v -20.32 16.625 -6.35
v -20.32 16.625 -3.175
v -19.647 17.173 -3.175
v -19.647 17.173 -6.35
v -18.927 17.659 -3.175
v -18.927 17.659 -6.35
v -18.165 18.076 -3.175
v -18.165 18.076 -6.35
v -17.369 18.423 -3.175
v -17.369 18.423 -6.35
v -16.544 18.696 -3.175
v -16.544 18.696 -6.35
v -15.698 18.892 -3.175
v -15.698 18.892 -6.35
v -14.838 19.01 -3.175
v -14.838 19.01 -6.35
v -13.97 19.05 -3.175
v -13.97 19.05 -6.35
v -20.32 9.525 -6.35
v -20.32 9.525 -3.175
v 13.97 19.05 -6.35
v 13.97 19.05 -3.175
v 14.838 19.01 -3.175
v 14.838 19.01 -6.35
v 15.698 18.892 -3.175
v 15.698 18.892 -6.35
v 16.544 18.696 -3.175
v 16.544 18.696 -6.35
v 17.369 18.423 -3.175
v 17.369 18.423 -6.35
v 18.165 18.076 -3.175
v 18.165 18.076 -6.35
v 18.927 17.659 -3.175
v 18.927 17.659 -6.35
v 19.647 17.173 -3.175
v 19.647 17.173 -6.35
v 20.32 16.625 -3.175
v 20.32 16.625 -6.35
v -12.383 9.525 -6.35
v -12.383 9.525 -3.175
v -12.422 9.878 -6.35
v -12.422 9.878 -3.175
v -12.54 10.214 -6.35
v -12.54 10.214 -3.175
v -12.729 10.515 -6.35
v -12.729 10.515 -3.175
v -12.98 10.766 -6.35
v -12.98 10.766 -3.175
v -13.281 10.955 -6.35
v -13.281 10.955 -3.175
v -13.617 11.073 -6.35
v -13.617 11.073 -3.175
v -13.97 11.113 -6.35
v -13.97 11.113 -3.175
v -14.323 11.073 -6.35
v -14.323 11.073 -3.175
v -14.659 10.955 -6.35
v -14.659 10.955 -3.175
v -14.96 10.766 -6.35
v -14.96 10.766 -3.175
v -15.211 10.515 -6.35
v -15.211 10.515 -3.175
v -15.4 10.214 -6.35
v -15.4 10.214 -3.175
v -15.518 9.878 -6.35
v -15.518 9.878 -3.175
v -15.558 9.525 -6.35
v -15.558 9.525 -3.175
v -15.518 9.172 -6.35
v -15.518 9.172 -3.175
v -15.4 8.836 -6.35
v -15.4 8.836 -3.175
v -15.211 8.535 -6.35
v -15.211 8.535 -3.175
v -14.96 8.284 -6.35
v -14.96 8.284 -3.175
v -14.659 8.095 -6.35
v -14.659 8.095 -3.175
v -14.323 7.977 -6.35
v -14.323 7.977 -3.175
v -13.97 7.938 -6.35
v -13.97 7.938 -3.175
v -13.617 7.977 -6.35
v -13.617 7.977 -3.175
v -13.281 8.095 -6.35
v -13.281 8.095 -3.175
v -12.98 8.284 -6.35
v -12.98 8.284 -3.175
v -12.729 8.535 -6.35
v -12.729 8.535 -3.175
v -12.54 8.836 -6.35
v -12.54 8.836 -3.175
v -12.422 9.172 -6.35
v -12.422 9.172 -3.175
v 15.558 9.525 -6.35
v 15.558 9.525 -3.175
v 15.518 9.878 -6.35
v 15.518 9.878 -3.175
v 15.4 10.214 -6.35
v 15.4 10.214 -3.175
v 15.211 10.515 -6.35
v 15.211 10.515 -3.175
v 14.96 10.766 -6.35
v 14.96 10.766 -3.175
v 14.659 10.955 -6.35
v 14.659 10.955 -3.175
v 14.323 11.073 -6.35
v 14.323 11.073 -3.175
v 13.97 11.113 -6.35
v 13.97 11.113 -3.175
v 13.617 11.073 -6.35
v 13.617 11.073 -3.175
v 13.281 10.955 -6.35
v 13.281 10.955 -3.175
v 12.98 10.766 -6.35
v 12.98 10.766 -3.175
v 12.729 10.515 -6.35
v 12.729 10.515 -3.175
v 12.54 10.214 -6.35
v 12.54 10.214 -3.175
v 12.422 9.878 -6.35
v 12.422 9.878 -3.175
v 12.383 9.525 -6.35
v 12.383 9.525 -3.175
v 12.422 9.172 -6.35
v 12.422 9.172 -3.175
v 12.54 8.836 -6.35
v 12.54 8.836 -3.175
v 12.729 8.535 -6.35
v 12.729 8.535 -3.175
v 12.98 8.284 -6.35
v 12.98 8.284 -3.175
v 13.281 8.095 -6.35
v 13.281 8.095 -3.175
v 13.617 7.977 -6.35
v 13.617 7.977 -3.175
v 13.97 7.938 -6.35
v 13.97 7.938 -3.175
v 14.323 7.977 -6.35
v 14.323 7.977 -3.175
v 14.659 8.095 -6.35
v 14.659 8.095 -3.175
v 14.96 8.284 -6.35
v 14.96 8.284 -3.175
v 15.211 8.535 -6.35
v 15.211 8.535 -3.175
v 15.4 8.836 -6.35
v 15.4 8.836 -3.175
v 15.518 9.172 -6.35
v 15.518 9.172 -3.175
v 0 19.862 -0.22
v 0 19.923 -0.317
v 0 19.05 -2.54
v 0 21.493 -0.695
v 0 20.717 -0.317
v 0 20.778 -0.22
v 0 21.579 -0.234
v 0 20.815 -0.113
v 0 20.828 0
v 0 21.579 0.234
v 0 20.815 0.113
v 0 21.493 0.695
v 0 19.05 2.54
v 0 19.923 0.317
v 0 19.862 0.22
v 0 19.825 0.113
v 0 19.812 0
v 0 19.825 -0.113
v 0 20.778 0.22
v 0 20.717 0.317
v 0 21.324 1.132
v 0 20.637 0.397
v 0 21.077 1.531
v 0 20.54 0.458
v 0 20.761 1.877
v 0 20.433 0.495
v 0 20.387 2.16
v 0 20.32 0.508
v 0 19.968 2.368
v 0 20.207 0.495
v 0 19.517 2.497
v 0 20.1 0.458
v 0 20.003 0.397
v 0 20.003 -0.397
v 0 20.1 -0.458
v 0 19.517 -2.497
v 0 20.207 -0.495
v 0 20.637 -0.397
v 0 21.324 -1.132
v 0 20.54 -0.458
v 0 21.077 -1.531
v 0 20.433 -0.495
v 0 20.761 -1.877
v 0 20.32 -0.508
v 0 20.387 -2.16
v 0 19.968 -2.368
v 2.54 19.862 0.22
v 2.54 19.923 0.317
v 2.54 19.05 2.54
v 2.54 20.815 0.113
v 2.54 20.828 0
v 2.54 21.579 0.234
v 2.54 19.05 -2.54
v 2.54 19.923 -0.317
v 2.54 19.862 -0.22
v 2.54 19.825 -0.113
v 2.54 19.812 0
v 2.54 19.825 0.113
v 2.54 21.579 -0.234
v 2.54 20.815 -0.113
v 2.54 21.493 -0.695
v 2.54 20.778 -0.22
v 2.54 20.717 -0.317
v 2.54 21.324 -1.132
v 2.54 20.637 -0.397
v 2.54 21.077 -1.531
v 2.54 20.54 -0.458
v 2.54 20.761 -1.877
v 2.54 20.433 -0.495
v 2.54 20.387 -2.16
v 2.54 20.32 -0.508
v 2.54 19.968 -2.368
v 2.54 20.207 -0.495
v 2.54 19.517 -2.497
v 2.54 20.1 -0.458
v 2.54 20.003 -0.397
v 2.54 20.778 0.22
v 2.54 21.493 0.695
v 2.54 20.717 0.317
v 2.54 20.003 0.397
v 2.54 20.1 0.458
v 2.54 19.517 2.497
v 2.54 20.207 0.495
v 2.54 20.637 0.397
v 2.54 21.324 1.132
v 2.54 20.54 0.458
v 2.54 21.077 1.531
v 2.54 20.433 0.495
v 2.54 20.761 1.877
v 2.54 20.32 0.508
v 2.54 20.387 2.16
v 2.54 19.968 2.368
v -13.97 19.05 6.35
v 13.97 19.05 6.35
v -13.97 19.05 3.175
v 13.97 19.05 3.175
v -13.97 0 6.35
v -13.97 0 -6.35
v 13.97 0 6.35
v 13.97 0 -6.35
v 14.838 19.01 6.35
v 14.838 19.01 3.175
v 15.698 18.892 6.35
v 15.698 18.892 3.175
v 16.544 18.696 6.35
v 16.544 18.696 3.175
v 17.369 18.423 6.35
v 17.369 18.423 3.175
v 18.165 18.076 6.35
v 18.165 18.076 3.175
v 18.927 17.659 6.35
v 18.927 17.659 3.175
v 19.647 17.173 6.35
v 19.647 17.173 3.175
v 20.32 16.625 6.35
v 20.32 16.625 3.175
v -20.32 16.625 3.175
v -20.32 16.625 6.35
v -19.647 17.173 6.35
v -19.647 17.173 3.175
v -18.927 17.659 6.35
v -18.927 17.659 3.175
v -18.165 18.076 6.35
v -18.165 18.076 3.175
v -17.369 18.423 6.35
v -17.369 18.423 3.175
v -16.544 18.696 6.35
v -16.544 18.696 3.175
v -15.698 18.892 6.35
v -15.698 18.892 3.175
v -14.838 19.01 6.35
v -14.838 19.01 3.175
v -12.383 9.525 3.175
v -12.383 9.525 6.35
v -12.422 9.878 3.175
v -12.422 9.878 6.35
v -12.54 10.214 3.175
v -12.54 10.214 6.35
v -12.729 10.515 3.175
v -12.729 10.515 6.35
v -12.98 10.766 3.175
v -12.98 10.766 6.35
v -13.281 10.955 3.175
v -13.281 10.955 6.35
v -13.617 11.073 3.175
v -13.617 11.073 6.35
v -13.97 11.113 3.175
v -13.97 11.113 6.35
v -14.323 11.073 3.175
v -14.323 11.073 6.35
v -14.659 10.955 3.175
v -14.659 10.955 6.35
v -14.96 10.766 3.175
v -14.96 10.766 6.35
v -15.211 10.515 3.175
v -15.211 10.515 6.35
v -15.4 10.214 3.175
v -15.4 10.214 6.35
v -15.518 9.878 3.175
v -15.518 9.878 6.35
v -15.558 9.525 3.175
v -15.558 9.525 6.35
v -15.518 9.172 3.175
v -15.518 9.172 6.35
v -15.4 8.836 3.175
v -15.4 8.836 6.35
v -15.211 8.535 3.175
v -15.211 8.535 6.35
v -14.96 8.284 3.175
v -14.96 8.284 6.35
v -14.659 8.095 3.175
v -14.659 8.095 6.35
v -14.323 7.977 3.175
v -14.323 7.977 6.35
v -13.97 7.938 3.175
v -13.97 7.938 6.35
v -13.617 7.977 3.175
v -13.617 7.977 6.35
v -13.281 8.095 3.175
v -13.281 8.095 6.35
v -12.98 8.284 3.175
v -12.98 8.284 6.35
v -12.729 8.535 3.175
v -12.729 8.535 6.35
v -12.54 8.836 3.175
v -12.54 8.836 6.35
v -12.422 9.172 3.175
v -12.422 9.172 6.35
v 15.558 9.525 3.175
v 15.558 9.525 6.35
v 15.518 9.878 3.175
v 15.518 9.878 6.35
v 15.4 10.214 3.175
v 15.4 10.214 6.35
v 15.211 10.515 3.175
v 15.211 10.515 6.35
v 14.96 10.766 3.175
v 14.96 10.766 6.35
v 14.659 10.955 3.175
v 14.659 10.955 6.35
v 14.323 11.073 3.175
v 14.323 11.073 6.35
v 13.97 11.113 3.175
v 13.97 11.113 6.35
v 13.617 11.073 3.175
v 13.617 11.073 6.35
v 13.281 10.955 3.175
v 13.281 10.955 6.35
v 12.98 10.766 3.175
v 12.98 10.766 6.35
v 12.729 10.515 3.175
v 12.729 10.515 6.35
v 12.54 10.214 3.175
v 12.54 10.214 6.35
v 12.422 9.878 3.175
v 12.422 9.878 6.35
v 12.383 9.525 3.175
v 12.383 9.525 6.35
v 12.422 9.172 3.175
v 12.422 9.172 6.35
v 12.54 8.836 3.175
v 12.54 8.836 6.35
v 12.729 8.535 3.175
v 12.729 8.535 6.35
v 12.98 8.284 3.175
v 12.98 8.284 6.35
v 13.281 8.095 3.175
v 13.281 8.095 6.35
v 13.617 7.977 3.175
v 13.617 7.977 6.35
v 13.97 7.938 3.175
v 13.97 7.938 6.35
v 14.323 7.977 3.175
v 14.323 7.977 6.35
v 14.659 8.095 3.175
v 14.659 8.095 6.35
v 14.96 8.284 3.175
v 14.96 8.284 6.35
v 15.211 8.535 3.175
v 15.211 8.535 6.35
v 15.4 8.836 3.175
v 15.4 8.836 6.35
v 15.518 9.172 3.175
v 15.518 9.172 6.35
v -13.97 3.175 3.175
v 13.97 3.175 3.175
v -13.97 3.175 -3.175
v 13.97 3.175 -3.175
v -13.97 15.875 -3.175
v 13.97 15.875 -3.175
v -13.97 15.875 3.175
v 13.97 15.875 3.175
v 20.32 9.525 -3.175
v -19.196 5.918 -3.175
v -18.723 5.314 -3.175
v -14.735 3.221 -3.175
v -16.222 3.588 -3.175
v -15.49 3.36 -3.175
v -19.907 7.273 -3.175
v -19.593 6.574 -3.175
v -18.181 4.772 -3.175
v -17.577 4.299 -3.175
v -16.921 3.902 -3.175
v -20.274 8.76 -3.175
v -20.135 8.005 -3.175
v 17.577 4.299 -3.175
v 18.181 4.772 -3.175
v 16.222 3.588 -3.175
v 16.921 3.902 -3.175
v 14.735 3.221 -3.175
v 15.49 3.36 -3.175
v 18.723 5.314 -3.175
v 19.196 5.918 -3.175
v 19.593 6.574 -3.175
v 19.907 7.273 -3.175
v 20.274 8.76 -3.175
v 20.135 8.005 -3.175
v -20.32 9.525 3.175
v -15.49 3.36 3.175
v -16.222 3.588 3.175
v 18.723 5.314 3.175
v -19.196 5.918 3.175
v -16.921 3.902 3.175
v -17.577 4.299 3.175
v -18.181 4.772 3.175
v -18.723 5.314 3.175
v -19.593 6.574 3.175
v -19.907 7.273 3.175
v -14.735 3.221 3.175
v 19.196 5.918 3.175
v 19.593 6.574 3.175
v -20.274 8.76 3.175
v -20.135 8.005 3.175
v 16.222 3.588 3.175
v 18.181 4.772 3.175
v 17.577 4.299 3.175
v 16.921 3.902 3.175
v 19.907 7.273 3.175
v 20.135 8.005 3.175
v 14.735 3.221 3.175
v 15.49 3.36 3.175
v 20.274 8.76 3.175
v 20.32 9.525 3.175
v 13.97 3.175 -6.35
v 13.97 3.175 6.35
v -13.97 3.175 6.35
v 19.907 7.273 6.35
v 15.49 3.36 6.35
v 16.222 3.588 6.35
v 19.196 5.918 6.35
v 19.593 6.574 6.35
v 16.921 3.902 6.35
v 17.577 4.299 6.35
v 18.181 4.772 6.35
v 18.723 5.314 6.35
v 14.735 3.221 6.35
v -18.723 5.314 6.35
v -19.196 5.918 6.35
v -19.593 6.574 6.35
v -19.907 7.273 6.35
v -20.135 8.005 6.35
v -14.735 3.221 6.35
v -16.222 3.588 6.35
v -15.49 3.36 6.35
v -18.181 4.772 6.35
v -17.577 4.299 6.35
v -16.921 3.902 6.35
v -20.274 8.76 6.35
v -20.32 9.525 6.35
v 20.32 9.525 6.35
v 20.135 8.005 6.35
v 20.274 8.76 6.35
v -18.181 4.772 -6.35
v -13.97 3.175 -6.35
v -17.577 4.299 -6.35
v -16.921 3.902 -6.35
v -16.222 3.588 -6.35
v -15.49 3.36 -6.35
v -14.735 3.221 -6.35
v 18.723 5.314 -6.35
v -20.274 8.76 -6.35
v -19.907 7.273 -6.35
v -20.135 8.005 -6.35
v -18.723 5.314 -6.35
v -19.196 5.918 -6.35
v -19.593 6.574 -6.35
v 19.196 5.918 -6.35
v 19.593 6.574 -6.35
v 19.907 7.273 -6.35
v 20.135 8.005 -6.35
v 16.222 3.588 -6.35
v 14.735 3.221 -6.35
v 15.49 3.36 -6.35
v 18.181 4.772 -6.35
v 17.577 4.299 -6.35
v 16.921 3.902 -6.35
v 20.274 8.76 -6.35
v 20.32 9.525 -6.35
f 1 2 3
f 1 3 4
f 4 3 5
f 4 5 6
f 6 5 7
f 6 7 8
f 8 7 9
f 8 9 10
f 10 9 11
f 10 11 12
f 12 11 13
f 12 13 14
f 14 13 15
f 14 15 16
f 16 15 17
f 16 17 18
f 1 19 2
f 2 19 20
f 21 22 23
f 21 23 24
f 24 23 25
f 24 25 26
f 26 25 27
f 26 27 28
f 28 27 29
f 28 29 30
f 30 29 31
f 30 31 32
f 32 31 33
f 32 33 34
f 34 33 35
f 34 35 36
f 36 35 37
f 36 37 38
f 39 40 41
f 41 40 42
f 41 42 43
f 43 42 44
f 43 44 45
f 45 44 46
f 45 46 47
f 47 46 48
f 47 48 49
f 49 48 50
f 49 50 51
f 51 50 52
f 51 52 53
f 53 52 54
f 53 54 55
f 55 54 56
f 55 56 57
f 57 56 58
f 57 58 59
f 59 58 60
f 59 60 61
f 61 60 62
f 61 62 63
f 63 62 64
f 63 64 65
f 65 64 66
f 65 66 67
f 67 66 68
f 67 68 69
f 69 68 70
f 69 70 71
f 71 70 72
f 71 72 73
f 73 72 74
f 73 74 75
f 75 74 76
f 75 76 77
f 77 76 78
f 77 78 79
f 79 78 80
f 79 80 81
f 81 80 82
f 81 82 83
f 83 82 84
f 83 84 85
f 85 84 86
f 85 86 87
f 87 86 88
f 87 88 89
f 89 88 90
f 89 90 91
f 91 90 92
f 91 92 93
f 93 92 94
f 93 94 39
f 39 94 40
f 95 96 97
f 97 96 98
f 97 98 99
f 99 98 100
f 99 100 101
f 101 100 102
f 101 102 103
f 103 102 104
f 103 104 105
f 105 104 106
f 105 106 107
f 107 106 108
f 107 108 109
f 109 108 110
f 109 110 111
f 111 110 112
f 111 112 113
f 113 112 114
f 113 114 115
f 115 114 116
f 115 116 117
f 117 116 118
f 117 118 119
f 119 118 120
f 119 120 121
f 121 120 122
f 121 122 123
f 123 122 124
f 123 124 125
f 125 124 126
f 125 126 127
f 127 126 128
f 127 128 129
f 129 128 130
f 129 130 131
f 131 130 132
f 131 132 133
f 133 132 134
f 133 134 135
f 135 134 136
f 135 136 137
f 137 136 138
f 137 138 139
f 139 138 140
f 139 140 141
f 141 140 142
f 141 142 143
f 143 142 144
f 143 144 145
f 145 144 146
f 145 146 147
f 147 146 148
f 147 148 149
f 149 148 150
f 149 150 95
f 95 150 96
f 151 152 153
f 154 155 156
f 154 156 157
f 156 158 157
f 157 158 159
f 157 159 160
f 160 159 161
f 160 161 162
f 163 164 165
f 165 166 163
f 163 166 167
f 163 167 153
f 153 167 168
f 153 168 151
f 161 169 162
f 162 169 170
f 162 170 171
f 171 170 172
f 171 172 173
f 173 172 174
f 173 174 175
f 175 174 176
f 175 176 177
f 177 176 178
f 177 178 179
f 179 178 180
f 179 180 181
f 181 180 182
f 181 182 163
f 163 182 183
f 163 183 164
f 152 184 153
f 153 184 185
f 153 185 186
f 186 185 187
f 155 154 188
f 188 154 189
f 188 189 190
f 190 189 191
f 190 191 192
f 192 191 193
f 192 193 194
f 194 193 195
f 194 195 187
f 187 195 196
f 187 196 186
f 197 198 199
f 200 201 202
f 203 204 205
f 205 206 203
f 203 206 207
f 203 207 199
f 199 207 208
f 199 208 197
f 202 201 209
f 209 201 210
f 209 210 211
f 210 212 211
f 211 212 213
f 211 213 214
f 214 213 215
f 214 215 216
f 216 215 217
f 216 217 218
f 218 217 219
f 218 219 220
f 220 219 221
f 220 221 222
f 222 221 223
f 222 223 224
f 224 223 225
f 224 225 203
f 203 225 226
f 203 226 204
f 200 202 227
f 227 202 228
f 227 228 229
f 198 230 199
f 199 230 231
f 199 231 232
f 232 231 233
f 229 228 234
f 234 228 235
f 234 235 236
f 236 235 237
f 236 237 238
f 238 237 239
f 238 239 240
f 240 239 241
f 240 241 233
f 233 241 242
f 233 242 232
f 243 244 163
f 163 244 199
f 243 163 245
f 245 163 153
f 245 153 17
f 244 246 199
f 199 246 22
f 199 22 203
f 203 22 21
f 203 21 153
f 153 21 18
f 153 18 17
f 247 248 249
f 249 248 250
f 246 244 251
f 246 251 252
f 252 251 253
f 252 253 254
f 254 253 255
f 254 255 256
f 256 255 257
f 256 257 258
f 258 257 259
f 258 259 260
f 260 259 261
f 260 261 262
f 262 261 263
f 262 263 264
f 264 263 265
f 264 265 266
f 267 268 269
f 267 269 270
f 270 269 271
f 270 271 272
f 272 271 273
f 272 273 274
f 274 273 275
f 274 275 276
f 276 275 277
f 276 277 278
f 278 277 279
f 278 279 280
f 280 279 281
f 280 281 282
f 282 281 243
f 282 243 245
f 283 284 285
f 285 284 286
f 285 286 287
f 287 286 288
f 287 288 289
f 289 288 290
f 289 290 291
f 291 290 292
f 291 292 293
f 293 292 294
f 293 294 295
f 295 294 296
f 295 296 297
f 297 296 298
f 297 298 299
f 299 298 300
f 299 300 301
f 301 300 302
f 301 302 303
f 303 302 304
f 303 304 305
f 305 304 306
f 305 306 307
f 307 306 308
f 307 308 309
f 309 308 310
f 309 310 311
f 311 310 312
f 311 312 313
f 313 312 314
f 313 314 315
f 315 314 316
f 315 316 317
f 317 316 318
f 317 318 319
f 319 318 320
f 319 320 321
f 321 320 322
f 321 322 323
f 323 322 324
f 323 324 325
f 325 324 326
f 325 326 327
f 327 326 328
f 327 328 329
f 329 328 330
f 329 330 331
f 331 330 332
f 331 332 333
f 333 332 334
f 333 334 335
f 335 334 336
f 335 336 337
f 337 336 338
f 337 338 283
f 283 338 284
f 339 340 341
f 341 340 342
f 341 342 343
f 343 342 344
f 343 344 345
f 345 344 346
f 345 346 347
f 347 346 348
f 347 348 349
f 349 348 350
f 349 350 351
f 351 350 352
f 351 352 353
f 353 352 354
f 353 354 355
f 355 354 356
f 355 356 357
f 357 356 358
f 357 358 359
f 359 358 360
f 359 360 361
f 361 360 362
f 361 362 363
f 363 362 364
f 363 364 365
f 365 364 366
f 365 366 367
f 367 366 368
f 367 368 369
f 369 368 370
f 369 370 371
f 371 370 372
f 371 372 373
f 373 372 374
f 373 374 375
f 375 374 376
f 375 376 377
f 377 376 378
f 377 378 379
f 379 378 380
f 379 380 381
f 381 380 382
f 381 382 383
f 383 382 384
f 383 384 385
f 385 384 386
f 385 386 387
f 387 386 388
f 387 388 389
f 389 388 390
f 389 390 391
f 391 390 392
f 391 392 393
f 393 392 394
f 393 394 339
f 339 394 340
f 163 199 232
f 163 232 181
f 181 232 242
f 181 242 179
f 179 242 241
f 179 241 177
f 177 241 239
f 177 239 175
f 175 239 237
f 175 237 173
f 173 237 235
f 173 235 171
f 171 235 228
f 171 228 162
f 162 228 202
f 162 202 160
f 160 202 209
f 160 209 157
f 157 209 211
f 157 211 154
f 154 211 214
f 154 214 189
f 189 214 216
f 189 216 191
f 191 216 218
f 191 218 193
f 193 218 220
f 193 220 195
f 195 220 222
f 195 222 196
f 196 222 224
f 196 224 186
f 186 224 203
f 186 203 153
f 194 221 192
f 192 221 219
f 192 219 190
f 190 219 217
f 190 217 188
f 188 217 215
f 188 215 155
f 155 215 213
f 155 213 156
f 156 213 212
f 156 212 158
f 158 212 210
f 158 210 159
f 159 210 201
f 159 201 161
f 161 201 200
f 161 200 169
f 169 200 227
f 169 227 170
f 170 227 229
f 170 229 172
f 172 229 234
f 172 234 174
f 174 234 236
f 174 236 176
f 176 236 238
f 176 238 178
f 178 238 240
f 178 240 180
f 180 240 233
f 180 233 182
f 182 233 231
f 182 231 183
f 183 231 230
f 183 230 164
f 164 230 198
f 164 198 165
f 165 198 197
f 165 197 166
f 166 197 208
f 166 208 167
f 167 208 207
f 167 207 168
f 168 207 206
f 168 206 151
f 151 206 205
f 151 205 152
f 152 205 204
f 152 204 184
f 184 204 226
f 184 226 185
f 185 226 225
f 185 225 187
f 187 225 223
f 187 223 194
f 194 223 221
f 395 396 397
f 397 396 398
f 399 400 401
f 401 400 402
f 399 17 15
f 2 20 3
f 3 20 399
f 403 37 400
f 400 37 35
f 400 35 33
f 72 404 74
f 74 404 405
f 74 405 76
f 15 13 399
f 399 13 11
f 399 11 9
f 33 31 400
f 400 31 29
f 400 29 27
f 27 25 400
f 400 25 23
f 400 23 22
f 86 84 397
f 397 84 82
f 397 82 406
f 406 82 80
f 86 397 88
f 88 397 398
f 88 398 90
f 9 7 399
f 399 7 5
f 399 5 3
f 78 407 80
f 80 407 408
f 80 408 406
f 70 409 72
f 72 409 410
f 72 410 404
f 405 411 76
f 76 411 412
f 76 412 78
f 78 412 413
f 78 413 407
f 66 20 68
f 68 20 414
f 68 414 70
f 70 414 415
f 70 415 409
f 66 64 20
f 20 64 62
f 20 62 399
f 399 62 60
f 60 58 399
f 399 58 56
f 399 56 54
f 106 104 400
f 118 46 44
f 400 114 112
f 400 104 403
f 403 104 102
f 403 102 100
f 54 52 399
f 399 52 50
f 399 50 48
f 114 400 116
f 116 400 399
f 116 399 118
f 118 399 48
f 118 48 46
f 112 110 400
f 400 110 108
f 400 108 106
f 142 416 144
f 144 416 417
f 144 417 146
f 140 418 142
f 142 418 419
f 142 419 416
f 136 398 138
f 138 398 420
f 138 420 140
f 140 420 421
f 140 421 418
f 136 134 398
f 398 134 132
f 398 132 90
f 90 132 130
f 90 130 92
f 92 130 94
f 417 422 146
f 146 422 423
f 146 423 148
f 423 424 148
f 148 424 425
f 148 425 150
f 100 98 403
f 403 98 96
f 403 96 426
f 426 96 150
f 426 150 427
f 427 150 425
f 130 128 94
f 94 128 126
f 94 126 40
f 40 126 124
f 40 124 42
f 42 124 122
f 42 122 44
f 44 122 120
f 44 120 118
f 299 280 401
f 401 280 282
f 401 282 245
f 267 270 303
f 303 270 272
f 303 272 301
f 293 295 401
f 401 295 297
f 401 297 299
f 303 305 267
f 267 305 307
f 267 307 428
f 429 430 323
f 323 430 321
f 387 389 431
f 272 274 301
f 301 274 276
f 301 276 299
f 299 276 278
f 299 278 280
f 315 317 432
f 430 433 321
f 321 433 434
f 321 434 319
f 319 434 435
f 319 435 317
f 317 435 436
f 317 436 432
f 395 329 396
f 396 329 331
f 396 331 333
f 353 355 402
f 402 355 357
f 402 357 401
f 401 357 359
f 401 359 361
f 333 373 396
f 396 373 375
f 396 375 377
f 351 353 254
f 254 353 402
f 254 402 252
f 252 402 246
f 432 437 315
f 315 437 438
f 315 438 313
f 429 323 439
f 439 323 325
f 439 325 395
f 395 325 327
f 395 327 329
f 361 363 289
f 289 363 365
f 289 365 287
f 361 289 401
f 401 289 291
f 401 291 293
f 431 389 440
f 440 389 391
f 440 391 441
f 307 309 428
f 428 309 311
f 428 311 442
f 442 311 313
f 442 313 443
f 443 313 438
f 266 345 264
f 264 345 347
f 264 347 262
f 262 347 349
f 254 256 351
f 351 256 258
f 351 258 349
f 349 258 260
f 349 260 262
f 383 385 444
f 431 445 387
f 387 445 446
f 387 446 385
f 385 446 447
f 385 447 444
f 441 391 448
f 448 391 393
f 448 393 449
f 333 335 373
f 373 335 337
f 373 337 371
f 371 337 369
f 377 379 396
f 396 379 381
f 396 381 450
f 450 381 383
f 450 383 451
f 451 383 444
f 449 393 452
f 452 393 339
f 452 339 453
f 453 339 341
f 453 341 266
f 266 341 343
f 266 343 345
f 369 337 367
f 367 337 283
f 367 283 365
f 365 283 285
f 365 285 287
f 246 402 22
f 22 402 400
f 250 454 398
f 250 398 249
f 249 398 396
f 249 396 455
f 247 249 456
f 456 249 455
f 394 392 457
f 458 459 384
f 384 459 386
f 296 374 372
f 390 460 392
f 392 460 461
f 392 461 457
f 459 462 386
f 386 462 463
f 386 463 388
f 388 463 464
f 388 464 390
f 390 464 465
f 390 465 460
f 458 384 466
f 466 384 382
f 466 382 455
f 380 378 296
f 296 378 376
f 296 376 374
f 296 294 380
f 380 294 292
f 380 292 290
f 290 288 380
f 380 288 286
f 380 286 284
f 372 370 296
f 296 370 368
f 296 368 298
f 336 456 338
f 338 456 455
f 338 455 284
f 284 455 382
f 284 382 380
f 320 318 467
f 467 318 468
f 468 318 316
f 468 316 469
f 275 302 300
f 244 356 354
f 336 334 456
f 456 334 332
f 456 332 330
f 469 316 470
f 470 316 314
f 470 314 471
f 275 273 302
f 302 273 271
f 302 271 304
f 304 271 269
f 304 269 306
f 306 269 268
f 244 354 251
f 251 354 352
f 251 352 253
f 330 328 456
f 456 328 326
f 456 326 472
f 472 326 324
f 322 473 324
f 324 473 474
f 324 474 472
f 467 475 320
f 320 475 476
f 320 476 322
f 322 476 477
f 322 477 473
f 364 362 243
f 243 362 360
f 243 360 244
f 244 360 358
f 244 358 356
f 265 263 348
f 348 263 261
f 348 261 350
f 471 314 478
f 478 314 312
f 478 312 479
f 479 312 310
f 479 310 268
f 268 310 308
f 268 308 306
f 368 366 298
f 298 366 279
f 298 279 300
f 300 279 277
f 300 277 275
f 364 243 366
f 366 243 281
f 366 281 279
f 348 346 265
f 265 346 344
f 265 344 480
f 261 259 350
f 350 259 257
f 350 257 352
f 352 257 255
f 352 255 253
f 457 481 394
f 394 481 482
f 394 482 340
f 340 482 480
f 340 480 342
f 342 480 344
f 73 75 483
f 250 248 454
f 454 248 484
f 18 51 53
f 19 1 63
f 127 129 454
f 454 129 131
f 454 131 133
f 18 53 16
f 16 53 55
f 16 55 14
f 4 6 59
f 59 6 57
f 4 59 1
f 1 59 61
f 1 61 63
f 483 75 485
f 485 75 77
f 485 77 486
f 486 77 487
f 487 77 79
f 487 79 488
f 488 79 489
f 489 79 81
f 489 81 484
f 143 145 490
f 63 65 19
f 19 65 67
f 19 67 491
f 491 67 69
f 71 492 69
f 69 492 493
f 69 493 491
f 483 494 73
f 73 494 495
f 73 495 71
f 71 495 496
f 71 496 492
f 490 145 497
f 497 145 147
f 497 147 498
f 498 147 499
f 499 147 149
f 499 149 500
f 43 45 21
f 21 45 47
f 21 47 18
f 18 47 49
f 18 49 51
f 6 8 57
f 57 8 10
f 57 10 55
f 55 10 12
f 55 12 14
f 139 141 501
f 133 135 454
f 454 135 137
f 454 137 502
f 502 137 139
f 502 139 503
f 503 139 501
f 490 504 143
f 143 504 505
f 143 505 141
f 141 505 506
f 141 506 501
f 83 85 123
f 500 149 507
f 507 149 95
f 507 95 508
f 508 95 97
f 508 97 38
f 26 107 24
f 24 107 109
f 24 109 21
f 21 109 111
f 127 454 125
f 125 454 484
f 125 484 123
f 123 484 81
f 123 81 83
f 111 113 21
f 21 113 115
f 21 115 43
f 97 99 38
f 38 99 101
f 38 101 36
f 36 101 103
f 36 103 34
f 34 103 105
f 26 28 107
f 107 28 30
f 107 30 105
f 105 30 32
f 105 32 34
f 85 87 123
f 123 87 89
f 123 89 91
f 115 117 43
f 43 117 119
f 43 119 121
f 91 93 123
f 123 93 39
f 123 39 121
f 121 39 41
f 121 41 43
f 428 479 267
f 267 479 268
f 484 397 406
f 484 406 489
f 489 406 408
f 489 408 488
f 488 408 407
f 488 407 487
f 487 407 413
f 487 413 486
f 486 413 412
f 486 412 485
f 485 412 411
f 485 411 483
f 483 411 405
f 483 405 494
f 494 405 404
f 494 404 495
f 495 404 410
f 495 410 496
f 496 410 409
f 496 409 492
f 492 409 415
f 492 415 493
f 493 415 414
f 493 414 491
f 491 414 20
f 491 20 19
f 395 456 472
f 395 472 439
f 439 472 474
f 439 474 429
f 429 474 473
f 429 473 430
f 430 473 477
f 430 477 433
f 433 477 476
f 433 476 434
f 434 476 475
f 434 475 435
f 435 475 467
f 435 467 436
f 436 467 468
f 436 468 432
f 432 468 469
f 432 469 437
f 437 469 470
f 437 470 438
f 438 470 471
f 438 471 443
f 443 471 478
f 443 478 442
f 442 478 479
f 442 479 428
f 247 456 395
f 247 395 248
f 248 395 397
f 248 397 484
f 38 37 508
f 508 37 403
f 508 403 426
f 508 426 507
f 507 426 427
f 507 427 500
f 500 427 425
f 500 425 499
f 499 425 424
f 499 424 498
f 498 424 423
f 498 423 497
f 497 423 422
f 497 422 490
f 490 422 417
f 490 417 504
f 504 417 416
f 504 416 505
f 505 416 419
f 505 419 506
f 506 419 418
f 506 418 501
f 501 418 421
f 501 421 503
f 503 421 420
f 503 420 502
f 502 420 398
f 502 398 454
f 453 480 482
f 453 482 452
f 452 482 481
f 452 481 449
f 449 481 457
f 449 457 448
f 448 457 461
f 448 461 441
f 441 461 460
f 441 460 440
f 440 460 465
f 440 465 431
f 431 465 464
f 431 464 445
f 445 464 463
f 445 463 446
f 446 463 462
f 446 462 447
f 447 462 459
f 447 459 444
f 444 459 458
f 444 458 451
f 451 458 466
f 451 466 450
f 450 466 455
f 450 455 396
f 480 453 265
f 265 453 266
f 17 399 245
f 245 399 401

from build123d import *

# Parameters (mm, degrees)
SKETCH1_W           = 47.625
SKETCH1_H           = 19.05
BOSS_EXTRUDE1_DEPTH = 19.05
SKETCH2_R           = 1.5875
CUT_EXTRUDE1_DEPTH  = 19.05
SKETCH9_W           = 2.54
SKETCH9_H           = 5.08
BOSS_EXTRUDE2_DEPTH = 2.54
SKETCH3_R           = 0.508
SKETCH3_W           = 6.35
SKETCH3_H           = 12.7
CUT_EXTRUDE2_DEPTH  = 38.1
SKETCH4_W           = 15.197967332
SKETCH4_H           = 6.35
CUT_EXTRUDE3_DEPTH  = 43.18
CUT_EXTRUDE4_DEPTH  = 19.05
SKETCH7_W           = 13.77890267
SKETCH7_H           = 6.35
CUT_EXTRUDE5_DEPTH  = 3.81


with BuildPart() as part:
    # Sketch1 → Boss-Extrude1 (new body)
    with BuildSketch(Plane(origin=(0, 0, 0), x_dir=(1, 0, 0), z_dir=(0, 1, 0))):
        with Locations((0.3175, 0)):
            Rectangle(SKETCH1_W, SKETCH1_H)
    extrude(amount=BOSS_EXTRUDE1_DEPTH)

    # Sketch2 → Cut-Extrude1 (cut)
    with BuildSketch(Plane.XY.offset(9.525)):
        with Locations((-13.97, 9.525)):
            Circle(SKETCH2_R)
        with Locations((13.97, 9.525)):
            Circle(SKETCH2_R)
        with BuildLine():
            ThreePointArc((-13.97, 19.05), (-23.495, 9.525), (-13.97, 0))
            ThreePointArc((-13.97, 0), (-34.184765451, 9.525), (-13.97, 19.05))
        make_face()
        with BuildLine():
            ThreePointArc((13.97, 19.05), (34.184765451, 9.525), (13.97, 0))
            ThreePointArc((13.97, 0), (23.495, 9.525), (13.97, 19.05))
        make_face()
    extrude(amount=-CUT_EXTRUDE1_DEPTH, mode=Mode.SUBTRACT)

    # Sketch9 → Boss-Extrude2 (add)
    with BuildSketch(Plane(origin=(0, 19.05, 0), x_dir=(1, 0, 0), z_dir=(0, 1, 0))):
        with Locations((1.27, 0)):
            Rectangle(SKETCH9_W, SKETCH9_H)
    extrude(amount=BOSS_EXTRUDE2_DEPTH)

    # Sketch3 → Cut-Extrude2 (cut, symmetric)
    with BuildSketch(Plane(origin=(0, 0, 0), x_dir=(0, 0, -1), z_dir=(1, 0, 0))):
        with Locations((0, 20.32)):
            Circle(SKETCH3_R)
        with Locations((0, 9.525)):
            Rectangle(SKETCH3_W, SKETCH3_H)
        with BuildLine():
            ThreePointArc((-2.54, 19.05), (0, 21.59), (2.54, 19.05))
            ThreePointArc((2.54, 19.05), (0, 24.1080653), (-2.54, 19.05))
        make_face()
    extrude(amount=CUT_EXTRUDE2_DEPTH, both=True, mode=Mode.SUBTRACT)

    # Sketch4 → Cut-Extrude3 (cut)
    with BuildSketch(Plane(origin=(0, 19.05, 0), x_dir=(1, 0, 0), z_dir=(0, 1, 0))):
        Polygon((-29.361154188, -9.525), (-13.97, -9.525), (1.5875, -9.525), (28.406626571, -9.525), (28.406626571, -6.35), (1.5875, -6.35), (-13.97, -6.35), (-29.361154188, -6.35), align=None)
        Polygon((-13.97, 6.35), (-31.510324581, 6.35), (-31.510324581, 9.525), (-11.1125, 9.525), (1.5875, 9.525), (30.675017081, 9.525), (30.675017081, 6.35), (1.5875, 6.35), align=None)
        with Locations((21.568983666, 0)):
            Rectangle(SKETCH4_W, SKETCH4_H)
    extrude(amount=-CUT_EXTRUDE3_DEPTH, mode=Mode.SUBTRACT)

    # Sketch6 → Cut-Extrude4 (cut)
    with BuildSketch(Plane.XY.offset(9.525)):
        with BuildLine():
            Line((13.97, 0), (31.980086248, 0))
            Line((31.980086248, 0), (31.980086248, 3.175))
            Line((31.980086248, 3.175), (27.183594801, 13.808491056))
            Line((27.183594801, 13.808491056), (20.32, 24.370653281))
            Line((20.32, 24.370653281), (20.32, 9.525))
            ThreePointArc((20.32, 9.525), (18.460128061, 5.034871939), (13.97, 3.175))
            Line((13.97, 3.175), (13.97, 0))
        make_face()
        with BuildLine():
            Line((-13.97, 0), (-13.97, 3.175))
            ThreePointArc((-13.97, 3.175), (-18.460128061, 5.034871939), (-20.32, 9.525))
            Line((-20.32, 9.525), (-20.32, 20.942771878))
            Line((-20.32, 20.942771878), (-28.921644245, 11.767684684))
            Line((-28.921644245, 11.767684684), (-28.921644245, 0))
            Line((-28.921644245, 0), (-13.97, 0))
        make_face()
    extrude(amount=-CUT_EXTRUDE4_DEPTH, mode=Mode.SUBTRACT)

    # Sketch7 → Cut-Extrude5 (cut)
    with BuildSketch(Plane(origin=(0, 19.05, 0), x_dir=(1, 0, 0), z_dir=(0, 1, 0))):
        with Locations((-20.859451335, 0)):
            Rectangle(SKETCH7_W, SKETCH7_H)
    extrude(amount=-CUT_EXTRUDE5_DEPTH, mode=Mode.SUBTRACT)


solid = part.part
